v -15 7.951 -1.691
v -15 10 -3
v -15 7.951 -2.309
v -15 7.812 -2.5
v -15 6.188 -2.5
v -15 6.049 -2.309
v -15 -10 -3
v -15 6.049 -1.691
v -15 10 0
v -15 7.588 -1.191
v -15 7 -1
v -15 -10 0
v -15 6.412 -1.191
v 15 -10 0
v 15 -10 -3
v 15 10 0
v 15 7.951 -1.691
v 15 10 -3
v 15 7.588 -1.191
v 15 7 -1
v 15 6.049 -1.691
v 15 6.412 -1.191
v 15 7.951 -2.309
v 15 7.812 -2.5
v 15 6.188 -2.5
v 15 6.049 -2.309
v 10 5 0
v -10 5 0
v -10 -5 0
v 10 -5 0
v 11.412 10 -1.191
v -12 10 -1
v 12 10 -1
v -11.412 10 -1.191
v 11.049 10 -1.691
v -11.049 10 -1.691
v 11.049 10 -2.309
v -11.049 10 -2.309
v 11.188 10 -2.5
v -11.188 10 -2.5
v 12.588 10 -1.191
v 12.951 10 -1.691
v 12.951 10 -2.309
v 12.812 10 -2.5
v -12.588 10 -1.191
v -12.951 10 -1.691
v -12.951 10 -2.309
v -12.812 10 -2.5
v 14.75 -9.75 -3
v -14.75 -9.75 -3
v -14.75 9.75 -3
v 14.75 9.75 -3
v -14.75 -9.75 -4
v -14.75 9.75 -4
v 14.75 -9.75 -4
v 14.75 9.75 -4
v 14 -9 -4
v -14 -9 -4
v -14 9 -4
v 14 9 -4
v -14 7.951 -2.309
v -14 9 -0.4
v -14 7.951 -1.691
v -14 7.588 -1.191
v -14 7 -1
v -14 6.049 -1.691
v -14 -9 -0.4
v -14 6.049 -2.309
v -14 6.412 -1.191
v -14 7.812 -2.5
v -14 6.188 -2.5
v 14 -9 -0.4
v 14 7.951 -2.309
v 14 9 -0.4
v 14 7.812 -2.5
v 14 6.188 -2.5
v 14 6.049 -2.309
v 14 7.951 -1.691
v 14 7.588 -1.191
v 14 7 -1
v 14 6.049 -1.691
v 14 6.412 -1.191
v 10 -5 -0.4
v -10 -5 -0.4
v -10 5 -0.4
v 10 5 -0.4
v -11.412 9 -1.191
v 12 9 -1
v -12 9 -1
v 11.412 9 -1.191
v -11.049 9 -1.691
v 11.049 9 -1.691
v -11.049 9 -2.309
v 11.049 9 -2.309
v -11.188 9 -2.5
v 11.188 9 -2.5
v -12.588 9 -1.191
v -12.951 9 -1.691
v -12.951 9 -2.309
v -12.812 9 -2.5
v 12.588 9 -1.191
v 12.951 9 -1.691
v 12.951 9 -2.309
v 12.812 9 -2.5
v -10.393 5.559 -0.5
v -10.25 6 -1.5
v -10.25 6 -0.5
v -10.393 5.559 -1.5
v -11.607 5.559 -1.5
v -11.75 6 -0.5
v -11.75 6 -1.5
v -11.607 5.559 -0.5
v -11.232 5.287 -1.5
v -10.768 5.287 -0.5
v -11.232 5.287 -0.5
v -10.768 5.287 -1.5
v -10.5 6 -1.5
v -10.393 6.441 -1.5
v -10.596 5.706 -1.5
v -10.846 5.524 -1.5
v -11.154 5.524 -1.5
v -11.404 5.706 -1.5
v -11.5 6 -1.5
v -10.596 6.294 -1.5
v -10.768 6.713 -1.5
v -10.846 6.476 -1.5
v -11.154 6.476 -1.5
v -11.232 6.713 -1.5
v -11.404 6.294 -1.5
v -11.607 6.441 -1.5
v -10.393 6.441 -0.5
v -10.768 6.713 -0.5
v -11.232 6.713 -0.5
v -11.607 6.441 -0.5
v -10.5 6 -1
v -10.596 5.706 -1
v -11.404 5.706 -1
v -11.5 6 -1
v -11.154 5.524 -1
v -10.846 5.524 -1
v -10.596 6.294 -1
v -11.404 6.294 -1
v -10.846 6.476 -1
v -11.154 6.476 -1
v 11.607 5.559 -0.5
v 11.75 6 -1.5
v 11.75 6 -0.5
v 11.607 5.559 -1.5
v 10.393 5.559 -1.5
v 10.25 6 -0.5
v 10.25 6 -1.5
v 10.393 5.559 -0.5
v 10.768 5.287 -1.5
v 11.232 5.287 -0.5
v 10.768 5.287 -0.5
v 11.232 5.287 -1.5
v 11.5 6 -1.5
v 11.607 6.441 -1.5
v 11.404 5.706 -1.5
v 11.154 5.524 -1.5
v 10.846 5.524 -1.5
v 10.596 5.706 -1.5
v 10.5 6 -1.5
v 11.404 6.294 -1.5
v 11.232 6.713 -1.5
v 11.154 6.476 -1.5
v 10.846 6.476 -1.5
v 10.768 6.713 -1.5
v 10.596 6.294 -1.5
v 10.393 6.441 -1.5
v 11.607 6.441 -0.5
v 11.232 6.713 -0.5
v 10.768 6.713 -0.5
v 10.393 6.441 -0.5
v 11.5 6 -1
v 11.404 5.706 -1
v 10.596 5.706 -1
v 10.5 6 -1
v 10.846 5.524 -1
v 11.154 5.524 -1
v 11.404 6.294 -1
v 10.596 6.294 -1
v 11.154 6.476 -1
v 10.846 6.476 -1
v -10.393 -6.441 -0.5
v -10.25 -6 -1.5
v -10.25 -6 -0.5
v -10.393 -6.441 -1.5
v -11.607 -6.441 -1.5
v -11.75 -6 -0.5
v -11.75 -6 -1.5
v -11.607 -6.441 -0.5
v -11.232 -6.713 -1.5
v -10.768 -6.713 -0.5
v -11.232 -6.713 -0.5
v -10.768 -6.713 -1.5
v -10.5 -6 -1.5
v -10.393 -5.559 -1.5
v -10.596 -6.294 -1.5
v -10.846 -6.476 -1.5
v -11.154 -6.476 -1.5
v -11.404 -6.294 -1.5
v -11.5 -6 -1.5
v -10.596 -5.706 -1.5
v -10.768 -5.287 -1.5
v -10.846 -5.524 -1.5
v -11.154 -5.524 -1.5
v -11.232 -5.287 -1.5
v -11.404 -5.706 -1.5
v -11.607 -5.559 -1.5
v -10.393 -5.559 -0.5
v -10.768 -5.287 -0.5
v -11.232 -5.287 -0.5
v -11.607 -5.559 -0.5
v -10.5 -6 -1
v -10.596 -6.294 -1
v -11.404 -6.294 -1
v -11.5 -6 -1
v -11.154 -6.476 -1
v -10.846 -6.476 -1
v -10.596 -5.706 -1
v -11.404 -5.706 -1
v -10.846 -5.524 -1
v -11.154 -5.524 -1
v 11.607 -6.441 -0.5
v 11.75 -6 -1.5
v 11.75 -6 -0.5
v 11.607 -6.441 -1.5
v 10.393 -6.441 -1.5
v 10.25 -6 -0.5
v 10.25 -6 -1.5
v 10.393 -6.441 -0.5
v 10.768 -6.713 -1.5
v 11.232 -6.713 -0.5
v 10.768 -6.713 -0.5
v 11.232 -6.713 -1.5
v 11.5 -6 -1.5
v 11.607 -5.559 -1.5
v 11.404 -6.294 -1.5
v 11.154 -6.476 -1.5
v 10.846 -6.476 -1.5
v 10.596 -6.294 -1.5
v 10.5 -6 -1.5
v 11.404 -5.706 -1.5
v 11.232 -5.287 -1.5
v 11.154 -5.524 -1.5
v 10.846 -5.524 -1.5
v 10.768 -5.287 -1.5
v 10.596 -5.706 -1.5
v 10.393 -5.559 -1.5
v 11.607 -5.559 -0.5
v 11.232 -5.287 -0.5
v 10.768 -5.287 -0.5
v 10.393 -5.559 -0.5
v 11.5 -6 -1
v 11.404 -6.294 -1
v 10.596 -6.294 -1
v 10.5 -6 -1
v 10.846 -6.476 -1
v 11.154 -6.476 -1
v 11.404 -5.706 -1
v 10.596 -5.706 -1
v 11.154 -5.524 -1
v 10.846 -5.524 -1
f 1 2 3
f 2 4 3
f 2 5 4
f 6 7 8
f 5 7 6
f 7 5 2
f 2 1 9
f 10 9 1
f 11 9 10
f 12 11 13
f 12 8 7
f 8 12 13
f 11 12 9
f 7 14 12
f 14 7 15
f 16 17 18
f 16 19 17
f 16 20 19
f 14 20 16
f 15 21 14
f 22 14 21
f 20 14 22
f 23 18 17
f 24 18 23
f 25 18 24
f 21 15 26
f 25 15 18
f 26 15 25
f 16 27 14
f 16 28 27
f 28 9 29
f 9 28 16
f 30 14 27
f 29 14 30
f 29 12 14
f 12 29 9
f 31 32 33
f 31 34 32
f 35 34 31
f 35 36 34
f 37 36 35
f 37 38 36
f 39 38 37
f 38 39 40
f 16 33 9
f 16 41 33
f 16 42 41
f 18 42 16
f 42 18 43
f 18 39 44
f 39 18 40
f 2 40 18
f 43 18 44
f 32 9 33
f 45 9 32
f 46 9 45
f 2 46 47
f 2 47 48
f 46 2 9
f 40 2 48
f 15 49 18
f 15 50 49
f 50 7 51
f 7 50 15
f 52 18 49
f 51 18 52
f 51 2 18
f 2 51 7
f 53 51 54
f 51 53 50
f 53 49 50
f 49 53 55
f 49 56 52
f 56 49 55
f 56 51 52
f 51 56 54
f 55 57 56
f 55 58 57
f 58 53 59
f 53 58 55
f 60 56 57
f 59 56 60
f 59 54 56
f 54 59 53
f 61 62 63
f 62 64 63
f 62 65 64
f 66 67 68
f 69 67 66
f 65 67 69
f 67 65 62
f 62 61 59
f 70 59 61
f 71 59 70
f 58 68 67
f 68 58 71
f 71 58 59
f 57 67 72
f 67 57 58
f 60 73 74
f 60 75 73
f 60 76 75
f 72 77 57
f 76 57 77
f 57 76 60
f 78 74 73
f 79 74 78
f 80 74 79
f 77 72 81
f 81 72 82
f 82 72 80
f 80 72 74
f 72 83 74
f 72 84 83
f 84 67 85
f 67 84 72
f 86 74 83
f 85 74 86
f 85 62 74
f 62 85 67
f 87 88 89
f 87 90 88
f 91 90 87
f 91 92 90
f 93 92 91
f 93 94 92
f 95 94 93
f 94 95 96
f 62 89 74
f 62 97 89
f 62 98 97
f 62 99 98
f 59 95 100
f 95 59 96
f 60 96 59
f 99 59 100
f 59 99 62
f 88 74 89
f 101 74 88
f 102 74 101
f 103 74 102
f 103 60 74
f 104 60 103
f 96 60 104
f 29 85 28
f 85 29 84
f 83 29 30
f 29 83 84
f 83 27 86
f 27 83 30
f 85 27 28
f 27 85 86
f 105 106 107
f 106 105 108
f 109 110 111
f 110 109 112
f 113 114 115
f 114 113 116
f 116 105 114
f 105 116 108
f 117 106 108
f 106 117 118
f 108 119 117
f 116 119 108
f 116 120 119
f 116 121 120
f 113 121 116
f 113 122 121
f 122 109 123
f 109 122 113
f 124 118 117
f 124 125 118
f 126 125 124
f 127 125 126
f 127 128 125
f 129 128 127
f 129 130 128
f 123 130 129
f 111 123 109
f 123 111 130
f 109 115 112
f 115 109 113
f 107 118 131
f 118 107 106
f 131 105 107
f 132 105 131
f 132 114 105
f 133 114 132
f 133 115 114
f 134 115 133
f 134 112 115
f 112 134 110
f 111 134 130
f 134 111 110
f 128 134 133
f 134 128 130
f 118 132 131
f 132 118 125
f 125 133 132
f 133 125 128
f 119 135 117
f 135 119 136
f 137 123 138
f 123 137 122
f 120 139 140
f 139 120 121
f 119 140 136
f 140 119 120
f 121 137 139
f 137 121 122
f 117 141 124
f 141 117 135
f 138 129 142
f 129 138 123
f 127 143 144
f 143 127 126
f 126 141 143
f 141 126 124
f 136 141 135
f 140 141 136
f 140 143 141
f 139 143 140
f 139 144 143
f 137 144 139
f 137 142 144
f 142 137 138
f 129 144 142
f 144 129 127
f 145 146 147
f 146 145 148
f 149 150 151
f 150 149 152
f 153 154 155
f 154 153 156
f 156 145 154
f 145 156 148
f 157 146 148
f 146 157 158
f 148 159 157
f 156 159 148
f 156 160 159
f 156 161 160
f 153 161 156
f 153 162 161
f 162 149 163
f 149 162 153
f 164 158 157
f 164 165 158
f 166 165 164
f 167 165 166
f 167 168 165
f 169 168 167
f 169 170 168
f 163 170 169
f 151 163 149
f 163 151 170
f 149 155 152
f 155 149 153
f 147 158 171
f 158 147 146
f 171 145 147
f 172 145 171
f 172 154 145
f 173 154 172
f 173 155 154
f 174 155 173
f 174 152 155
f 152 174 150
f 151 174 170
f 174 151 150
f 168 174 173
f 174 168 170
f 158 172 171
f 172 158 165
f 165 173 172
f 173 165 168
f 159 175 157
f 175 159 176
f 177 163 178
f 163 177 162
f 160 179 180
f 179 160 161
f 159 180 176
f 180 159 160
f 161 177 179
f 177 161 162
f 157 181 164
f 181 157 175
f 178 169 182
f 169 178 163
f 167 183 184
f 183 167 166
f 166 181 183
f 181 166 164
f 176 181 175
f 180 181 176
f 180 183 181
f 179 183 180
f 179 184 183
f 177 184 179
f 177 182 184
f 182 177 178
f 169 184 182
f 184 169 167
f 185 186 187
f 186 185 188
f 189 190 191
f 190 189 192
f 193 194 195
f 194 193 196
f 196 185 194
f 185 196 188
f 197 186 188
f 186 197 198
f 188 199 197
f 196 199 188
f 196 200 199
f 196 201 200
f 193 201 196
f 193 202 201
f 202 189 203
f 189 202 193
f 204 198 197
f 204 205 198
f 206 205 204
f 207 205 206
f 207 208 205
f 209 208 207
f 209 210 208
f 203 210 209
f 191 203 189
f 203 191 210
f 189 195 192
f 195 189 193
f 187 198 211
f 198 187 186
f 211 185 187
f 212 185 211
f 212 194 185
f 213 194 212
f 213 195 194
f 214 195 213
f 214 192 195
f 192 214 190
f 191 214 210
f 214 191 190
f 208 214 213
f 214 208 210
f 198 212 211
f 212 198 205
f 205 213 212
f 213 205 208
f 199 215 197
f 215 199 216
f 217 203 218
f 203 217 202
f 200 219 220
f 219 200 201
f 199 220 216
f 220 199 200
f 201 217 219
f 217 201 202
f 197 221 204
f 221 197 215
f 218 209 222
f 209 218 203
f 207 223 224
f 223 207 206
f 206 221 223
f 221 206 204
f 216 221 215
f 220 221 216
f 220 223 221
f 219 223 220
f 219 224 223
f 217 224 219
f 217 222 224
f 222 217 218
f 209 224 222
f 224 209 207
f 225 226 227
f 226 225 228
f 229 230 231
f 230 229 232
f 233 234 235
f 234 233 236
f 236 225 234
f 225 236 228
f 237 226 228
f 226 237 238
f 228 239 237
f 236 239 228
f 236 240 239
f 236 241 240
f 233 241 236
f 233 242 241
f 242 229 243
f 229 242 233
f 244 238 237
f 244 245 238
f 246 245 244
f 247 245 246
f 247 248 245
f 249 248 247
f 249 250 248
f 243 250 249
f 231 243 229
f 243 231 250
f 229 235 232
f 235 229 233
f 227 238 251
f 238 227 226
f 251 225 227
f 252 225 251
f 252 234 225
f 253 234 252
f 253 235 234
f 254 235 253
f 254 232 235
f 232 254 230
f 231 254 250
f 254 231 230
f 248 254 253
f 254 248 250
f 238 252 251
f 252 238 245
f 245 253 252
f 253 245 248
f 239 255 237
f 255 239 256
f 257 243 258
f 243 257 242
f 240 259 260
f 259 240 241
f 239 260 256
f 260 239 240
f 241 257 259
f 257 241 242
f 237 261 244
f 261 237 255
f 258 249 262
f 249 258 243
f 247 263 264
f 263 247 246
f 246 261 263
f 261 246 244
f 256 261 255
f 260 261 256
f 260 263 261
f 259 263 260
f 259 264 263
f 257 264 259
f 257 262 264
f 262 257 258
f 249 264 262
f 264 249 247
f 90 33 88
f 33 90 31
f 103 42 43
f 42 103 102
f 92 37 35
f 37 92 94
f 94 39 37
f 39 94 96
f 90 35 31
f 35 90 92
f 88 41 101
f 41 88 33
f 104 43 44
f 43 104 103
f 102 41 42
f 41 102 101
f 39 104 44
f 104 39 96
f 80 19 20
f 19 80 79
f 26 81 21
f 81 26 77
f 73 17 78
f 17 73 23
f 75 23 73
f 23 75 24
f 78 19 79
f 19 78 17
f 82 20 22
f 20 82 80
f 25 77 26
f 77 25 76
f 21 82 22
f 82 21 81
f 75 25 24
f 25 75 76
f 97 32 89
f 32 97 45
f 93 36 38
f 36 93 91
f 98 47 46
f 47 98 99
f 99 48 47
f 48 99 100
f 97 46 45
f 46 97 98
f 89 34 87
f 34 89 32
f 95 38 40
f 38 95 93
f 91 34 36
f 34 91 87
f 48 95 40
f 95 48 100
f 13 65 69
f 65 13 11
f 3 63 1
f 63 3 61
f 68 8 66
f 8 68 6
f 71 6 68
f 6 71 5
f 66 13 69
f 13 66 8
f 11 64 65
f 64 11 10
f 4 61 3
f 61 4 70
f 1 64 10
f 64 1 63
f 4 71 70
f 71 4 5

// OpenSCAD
// file: lib/modules.scad
res=10;
if(resolution=="dev"){
  res=5;
}
if(resolution=="rough"){
  res=30;
}
if(resolution=="prod"){
  res=100;
}
module screen(w,h,tabs){
  cube([w,2,h],true);
}
module screwPost(id,od,ih,oh){
  difference(){
    cylinder(d=od,h=oh); 
    translate([0,0,oh-ih])
    cylinder(d=id,h=ih+0.1);
  }
}
module screenPosts(screenW,screenH,id,h){
  translate([-screenW/2,-screenH/2,0]){
    screwPost(id=id,ih=h-0.5,od=id+0.5,oh=h,$fn=res);
  }
  translate([screenW/2,-screenH/2,0]){
    screwPost(id=id,ih=h-0.5,od=id+0.5,oh=h,$fn=res);
  }
  translate([-screenW/2,screenH/2,0]){
    screwPost(id=id,ih=h-0.5,od=id+0.5,oh=h,$fn=res);
  }
  translate([screenW/2,screenH/2,0]){
    screwPost(id=id,ih=h-0.5,od=id+0.5,oh=h,$fn=res);
  }
}

module antHole(d,notch,border){
  difference(){
    cylinder(d=2,h=border*3,$fn=res);
    translate([notch,0,border*(3/2)])
      cube([d,d,border*3],true);
  }
}
// file: variables.scad
headphones = false;
//Antenna settings.  3 locations on each side are available.
antSocketRadius = 5; //antenna attach point radius
antSocketNotch = 4; //notch size from center of attach point
antHeight=3;
antSlot1=true;//top left screen.
antSlot2=true;//side left screen.
antSlot3=true;//side left keyboard.
antSlot4=true;//top right screen.
antSlot5=true;//side right screen.
antSlot6=true;//side right keyboard.
screenWidth = 20;
screenHeight = 10;
screenTabs = false;
keyboardWidth = 20;
keyboardHeight = 10;
Width = 30;
Height = 20;
TopDepth = 3;
resolution="prod";
//Which Ports are present on your pi.  Useful if you are removing ports for size.
PiUSB1 = false;
PiUSB2 = false;
PiETH = false;
PiHDMI = true;
PiPow = true;
//Set which pi you are using. Only one (1) can be selected at a time.
Pi2 = true; 
Pi3 = false;
Pi0 = false;
// main file
include <variables.scad>
include <lib/modules.scad>
border = 1;
module frame(){
  rotate([90,0,0]){
    difference(){
      union(){
        translate([0,0-TopDepth/2,0]){
          cube([Width,TopDepth,Height],true);
          translate([0,0-border,0]){
            cube([Width-border/2,TopDepth,Height-border/2],true);
          }
        }
      }
      translate([0,0-TopDepth/2-.9,0])
      cube([Width-border*2,TopDepth+border,Height-border*2],true);
      screen(screenWidth,screenHeight,screenTabs);
    }
  }
}
difference(){
  union(){
    frame();
    rotate([180,0,0])
      translate([0,0,border/2])
        screenPosts(screenW=screenWidth+2,screenH=screenHeight+2,id=1,h=1); 
  }
  if(antSlot1){
    rotate([-90,90,0])
    translate([border*2,-(Width/2-antHeight),Height/2-border*(3/2)])
      antHole(d=2,border=border,notch=1.5);
  }
  if(antSlot2){
  rotate([0,90,0])
    translate([border*2,Height/2-antHeight,Width/2-border*(3/2)])
      antHole(d=2,border=border,notch=1.5);
  }
  if(antSlot4){
    rotate([-90,90,0])
    translate([border*2,(Width/2-antHeight),Height/2-border*(3/2)])
      antHole(d=2,border=border,notch=1.5);
  }
  if(antSlot5){
  rotate([0,-90,0])
    translate([-border*2,Height/2-antHeight,Width/2-border*(3/2)])
      rotate([180,180,0])
      antHole(d=2,border=border,notch=1.5);
  }
}
